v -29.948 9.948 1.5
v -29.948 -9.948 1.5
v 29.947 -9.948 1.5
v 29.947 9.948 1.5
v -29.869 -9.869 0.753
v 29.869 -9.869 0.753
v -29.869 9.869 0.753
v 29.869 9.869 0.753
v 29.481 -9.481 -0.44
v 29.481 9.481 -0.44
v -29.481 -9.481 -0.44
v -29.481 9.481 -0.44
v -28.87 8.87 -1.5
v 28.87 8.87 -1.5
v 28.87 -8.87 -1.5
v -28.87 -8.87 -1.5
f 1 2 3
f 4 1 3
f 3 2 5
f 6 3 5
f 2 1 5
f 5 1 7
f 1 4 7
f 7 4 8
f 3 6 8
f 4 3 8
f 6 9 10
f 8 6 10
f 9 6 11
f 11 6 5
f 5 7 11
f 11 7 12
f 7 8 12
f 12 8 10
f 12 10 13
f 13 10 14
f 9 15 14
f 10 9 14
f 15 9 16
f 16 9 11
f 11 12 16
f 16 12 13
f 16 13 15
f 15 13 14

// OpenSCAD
module trim()
{
	translate([-5,0,0])
	difference()
	{
		cube([10,100,3],center=true);

		translate([5-6,0,0+2])
			rotate([90,0,0])
				cylinder(r=6,h=110,center=true,$fn=30);
	}
}

module face(w,h,d)
{
	smudge=0.0001;

	difference()
	{
		cube([w,h,d],center=true);
		translate([w/2,0,0])
			trim();
		translate([-(w/2+smudge),0,0])
			rotate([0,0,180])
				trim();
		translate([0,(h/2+smudge),0])
			rotate([0,0,90])
				trim();
		translate([0,-(h/2+smudge),0])
			rotate([0,0,270])
				trim();
	}
}

face(60,20,3);
